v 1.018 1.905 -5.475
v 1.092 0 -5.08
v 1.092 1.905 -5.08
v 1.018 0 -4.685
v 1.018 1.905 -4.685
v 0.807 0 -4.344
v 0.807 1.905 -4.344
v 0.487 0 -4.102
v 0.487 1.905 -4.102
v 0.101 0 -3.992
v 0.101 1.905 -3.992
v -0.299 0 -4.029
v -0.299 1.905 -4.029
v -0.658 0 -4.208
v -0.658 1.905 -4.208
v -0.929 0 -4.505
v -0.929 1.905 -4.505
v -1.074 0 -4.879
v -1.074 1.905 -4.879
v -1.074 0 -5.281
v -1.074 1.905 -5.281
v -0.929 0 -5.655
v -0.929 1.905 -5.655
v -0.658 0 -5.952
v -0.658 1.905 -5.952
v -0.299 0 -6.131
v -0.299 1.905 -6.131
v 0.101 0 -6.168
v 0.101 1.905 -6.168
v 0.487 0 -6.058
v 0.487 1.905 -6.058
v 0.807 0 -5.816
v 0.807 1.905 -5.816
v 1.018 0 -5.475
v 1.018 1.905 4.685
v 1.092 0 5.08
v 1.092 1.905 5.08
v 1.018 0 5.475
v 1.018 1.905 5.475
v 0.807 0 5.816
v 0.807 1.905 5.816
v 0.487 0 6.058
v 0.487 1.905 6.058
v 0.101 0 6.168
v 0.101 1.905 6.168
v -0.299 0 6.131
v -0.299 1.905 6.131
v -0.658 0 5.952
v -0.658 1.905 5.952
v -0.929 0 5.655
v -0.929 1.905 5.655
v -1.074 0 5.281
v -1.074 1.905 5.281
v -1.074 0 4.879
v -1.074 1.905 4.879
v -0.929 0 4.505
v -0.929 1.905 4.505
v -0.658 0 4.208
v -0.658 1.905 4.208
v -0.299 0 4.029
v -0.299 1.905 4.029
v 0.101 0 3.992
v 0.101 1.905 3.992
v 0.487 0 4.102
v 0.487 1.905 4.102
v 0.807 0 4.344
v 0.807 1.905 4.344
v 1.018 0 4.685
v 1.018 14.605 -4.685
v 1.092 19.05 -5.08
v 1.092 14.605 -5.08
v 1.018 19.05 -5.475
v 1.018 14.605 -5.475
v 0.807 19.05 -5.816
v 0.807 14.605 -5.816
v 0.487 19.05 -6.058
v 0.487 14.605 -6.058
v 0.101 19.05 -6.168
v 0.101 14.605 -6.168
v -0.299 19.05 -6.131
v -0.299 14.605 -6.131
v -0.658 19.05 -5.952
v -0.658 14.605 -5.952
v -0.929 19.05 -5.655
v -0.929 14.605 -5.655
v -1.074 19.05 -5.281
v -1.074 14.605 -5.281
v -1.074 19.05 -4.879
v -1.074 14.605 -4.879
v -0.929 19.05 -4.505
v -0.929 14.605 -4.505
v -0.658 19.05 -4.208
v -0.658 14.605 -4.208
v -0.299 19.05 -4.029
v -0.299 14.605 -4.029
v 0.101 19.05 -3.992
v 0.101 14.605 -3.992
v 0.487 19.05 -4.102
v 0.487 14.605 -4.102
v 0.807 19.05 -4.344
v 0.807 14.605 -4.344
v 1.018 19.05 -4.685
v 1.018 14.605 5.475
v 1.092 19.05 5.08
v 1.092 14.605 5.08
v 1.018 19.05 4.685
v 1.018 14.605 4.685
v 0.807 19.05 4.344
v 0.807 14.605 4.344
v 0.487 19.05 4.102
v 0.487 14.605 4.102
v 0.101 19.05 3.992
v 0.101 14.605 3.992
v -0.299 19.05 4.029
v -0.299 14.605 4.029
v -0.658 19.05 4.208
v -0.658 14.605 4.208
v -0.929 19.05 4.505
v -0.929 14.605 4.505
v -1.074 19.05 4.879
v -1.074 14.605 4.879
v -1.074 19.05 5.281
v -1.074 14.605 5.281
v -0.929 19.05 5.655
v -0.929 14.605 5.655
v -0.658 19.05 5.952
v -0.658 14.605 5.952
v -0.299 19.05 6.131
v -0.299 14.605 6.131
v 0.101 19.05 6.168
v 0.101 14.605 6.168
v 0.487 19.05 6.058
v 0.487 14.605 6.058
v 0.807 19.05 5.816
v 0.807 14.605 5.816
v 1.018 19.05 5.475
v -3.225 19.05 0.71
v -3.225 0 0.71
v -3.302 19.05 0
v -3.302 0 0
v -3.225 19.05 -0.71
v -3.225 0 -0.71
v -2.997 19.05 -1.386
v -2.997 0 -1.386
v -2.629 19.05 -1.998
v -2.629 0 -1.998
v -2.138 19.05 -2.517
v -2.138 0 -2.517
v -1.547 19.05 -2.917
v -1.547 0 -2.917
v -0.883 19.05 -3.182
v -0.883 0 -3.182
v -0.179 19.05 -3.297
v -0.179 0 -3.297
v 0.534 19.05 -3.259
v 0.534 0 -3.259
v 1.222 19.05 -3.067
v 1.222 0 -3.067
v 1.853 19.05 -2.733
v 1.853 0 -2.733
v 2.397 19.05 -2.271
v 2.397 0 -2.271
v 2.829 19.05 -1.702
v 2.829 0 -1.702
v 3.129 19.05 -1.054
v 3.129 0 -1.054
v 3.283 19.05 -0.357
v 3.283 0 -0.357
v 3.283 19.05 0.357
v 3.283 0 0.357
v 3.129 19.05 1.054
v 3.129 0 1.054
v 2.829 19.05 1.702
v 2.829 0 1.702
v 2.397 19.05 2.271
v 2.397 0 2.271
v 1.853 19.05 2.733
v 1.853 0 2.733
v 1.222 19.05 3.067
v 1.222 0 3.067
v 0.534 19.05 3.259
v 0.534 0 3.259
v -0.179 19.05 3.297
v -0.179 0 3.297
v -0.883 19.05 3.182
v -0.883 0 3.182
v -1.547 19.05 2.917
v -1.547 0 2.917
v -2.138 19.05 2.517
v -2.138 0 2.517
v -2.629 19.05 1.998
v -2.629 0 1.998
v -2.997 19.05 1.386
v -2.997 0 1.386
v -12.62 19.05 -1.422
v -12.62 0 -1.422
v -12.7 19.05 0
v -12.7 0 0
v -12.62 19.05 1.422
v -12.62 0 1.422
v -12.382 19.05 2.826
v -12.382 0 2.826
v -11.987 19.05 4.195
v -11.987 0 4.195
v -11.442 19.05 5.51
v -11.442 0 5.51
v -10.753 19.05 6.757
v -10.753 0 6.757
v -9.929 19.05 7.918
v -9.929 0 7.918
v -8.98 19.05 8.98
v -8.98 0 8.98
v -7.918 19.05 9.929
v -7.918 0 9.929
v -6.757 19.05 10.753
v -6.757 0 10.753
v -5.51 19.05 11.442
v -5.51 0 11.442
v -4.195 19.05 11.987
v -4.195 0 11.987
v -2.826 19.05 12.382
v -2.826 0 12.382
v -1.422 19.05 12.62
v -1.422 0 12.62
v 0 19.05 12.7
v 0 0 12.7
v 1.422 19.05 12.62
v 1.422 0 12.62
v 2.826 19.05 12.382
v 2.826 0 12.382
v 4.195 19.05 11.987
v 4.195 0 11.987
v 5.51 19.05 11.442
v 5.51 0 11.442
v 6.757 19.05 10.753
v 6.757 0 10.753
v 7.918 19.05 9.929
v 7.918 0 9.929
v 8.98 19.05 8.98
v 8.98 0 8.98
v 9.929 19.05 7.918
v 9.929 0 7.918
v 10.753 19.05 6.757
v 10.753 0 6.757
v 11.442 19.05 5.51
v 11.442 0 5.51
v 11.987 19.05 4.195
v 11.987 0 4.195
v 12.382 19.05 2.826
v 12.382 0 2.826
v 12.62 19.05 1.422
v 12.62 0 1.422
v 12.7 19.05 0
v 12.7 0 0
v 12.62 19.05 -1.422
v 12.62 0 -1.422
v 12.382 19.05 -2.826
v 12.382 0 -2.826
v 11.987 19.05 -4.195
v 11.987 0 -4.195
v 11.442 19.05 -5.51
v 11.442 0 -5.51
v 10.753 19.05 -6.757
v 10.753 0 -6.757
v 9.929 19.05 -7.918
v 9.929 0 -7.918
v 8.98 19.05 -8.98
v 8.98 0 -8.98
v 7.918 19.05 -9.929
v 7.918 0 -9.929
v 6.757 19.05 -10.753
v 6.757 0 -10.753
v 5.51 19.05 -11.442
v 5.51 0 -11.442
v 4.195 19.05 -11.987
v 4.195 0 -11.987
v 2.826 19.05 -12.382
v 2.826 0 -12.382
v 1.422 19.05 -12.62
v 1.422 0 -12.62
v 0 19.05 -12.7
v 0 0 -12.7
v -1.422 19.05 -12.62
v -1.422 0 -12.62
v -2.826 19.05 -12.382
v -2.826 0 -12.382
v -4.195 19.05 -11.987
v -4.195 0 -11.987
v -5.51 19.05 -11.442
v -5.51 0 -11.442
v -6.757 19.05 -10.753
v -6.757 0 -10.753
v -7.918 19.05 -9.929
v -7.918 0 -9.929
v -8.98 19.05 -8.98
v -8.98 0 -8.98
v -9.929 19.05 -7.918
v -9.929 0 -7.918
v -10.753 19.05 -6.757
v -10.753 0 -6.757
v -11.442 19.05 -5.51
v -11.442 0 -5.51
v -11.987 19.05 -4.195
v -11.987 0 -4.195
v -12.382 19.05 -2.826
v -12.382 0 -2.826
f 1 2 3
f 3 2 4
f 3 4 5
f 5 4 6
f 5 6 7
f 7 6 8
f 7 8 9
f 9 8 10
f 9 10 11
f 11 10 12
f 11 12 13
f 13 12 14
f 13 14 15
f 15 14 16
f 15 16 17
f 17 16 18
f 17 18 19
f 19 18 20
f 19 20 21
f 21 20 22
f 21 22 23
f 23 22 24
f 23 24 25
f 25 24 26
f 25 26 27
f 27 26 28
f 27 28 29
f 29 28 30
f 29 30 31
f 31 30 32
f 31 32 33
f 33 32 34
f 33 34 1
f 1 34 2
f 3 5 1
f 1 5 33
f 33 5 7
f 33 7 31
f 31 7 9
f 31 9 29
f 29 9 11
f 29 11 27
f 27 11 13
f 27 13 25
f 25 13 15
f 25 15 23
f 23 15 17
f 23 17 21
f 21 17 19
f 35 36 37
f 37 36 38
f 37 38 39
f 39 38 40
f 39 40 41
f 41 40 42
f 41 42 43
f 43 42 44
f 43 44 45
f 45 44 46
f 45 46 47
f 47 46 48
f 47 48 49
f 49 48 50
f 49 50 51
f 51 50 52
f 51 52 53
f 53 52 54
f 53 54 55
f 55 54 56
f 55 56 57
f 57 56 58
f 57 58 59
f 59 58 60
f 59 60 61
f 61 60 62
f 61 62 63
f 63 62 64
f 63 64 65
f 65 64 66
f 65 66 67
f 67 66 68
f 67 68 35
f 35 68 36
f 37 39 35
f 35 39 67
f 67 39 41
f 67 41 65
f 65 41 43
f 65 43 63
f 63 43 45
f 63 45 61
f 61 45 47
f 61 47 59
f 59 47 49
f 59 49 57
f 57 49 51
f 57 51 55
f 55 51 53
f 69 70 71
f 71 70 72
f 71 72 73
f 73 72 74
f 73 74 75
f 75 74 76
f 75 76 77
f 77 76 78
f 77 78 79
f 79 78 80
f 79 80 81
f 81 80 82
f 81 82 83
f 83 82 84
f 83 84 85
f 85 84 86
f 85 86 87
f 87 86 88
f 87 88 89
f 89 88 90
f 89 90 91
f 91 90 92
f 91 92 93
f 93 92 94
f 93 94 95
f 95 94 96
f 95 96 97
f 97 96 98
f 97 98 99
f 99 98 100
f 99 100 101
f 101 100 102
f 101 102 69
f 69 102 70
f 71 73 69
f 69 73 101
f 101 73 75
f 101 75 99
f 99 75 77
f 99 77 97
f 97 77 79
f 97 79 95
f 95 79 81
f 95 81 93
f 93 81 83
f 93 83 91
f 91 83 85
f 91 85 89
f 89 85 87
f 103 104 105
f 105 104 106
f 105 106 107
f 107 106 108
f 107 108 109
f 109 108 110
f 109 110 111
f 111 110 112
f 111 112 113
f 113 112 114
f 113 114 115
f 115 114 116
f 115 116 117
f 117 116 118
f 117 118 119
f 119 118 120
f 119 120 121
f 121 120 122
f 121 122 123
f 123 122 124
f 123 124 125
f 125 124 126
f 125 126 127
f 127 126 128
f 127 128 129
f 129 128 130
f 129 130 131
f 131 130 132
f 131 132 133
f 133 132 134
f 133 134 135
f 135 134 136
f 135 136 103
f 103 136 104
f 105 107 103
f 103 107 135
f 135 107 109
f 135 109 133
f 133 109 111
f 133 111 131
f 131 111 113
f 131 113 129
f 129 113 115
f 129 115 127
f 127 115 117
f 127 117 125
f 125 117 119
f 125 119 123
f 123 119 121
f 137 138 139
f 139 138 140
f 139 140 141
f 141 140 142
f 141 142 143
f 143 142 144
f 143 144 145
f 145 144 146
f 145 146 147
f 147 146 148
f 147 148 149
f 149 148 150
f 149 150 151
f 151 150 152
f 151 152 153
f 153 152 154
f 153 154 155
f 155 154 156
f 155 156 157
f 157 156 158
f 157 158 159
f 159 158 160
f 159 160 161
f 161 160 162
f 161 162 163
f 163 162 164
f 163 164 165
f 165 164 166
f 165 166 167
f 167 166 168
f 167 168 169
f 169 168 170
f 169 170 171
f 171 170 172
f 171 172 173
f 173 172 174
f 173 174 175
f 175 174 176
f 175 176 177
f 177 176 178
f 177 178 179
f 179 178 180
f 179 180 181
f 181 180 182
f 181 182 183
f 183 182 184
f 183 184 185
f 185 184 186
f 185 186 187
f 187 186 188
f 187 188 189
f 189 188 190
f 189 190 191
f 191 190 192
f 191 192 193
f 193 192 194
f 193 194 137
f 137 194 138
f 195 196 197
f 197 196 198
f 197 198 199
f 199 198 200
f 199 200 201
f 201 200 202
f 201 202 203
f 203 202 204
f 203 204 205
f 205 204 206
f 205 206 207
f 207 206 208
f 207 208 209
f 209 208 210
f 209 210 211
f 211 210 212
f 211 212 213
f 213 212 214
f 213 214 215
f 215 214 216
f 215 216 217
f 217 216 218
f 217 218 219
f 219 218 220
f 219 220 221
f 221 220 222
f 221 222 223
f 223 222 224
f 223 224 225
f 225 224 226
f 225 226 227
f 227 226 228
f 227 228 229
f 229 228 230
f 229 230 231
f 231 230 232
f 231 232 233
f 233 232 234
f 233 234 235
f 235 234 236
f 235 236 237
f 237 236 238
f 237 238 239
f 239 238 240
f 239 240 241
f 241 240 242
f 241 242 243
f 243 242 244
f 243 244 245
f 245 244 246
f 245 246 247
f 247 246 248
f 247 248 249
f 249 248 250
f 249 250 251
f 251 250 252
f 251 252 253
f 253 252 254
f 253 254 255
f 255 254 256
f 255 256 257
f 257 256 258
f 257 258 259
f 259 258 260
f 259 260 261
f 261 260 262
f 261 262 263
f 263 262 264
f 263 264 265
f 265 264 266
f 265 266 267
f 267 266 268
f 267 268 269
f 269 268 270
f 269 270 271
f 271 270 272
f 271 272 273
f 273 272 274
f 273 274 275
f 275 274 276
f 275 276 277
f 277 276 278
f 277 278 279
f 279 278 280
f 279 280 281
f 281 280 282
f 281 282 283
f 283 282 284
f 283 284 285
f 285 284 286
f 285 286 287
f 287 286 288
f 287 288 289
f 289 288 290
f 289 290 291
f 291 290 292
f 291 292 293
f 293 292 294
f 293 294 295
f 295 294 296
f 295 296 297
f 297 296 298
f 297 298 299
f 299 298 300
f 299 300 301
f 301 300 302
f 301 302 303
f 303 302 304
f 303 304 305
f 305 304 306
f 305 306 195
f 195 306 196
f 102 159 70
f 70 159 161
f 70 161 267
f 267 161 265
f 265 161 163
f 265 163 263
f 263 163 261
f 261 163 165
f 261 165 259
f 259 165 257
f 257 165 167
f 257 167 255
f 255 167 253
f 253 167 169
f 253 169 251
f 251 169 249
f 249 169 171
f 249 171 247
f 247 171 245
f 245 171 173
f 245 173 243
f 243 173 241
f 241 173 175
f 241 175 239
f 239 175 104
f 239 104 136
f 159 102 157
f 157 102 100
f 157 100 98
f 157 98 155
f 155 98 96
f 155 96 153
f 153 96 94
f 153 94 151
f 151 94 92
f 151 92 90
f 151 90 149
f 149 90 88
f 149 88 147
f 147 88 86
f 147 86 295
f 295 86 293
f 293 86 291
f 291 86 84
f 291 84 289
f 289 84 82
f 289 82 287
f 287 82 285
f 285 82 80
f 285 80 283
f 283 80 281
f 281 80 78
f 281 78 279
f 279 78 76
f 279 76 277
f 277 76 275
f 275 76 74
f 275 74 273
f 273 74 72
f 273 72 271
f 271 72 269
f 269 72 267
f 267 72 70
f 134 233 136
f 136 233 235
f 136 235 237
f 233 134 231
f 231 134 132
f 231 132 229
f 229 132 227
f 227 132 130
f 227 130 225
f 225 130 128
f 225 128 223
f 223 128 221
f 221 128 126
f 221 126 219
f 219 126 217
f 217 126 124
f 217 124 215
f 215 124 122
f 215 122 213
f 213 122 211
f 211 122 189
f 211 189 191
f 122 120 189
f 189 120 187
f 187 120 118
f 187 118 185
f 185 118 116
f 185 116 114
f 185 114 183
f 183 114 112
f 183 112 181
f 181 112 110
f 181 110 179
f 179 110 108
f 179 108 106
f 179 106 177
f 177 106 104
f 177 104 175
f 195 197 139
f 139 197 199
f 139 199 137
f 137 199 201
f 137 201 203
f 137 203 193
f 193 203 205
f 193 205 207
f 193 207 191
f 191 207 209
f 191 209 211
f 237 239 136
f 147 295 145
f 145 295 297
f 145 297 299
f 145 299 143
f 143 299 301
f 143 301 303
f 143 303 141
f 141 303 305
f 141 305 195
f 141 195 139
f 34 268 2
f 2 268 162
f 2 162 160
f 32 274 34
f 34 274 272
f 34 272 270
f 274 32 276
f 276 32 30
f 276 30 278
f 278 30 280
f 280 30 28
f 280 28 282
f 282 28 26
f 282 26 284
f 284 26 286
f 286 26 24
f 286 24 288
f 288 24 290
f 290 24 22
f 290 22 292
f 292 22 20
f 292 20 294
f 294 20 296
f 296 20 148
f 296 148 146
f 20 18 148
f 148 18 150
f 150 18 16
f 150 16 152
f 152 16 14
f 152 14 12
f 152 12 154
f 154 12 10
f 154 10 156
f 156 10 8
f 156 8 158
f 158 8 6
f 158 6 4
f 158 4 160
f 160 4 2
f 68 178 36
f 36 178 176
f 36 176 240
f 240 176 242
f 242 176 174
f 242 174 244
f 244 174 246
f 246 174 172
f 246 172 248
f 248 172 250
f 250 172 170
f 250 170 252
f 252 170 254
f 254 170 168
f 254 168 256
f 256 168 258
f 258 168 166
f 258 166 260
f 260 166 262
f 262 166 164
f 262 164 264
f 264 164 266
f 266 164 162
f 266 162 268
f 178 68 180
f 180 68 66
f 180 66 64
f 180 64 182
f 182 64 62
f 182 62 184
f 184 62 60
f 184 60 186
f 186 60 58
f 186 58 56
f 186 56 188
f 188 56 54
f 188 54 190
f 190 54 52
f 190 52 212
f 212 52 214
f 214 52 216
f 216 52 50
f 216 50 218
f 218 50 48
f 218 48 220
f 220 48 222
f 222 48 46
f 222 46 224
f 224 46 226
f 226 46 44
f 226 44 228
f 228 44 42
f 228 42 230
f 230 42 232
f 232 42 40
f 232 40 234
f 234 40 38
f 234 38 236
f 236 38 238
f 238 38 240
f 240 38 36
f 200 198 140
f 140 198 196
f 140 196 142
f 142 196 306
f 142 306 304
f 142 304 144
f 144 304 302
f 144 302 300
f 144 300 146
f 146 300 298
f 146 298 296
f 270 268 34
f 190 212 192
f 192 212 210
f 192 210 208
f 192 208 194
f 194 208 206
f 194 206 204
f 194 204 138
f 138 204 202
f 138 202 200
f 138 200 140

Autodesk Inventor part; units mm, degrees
ref_plane "YZ Plane" through (0, 0, 0) normal (1, 0, 0) x (0, 1, 0)
ref_plane "XZ Plane" through (0, 0, 0) normal (0, 1, 0) x (-1, 0, 0)
ref_plane "XY Plane" through (0, 0, 0) normal (0, 0, 1) x (1, 0, 0)
sketch "Sketch1" plane through (0, 0, 0) normal (0, 1, 0) x (-1, 0, 0)
  circle A0 centre (0, 0) radius 12.7
  circle A1 centre (0, 0) radius 3.302
  dimension "d0" = 25.4
  dimension "d1" = 6.604
extrude "Extrusion1" add sketch "Sketch1" along normal blind 19.05
sketch "Sketch2" plane through (0, 19.05, 0) normal (0, 1, 0) x (1, 0, 0)
  line L0 (0, 0) -> (0, -5.08)
  line L1 (0, -5.08) -> (0, 0)
  line L2 (0, 0) -> (0, 5.08)
  circle A0 centre (0, -5.08) radius 1.0922
  circle A1 centre (0, 5.08) radius 1.0922
  dimension "d4" = 5.08
  dimension "d5" = 5.08
  dimension "d6" = 2.1844
  dimension "d7" = 2.1844
extrude "Extrusion2" cut sketch "Sketch2" against normal blind 4.445
sketch "Sketch3" plane through (0, 0, 0) normal (0, -1, 0) x (1, 0, 0)
  line L0 (0, 0) -> (0, 5.08)
  line L1 (0, 5.08) -> (0, -5.08)
  circle A0 centre (0, 5.08) radius 1.0922
  circle A1 centre (0, -5.08) radius 1.0922
  dimension "d10" = 5.08
  dimension "d11" = 10.16
  dimension "d14" = 2.1844
  dimension "d15" = 2.1844
extrude "Extrusion3" cut sketch "Sketch3" against normal blind 1.905
properties part number "45DegreeMirrorPost_0p75in"
